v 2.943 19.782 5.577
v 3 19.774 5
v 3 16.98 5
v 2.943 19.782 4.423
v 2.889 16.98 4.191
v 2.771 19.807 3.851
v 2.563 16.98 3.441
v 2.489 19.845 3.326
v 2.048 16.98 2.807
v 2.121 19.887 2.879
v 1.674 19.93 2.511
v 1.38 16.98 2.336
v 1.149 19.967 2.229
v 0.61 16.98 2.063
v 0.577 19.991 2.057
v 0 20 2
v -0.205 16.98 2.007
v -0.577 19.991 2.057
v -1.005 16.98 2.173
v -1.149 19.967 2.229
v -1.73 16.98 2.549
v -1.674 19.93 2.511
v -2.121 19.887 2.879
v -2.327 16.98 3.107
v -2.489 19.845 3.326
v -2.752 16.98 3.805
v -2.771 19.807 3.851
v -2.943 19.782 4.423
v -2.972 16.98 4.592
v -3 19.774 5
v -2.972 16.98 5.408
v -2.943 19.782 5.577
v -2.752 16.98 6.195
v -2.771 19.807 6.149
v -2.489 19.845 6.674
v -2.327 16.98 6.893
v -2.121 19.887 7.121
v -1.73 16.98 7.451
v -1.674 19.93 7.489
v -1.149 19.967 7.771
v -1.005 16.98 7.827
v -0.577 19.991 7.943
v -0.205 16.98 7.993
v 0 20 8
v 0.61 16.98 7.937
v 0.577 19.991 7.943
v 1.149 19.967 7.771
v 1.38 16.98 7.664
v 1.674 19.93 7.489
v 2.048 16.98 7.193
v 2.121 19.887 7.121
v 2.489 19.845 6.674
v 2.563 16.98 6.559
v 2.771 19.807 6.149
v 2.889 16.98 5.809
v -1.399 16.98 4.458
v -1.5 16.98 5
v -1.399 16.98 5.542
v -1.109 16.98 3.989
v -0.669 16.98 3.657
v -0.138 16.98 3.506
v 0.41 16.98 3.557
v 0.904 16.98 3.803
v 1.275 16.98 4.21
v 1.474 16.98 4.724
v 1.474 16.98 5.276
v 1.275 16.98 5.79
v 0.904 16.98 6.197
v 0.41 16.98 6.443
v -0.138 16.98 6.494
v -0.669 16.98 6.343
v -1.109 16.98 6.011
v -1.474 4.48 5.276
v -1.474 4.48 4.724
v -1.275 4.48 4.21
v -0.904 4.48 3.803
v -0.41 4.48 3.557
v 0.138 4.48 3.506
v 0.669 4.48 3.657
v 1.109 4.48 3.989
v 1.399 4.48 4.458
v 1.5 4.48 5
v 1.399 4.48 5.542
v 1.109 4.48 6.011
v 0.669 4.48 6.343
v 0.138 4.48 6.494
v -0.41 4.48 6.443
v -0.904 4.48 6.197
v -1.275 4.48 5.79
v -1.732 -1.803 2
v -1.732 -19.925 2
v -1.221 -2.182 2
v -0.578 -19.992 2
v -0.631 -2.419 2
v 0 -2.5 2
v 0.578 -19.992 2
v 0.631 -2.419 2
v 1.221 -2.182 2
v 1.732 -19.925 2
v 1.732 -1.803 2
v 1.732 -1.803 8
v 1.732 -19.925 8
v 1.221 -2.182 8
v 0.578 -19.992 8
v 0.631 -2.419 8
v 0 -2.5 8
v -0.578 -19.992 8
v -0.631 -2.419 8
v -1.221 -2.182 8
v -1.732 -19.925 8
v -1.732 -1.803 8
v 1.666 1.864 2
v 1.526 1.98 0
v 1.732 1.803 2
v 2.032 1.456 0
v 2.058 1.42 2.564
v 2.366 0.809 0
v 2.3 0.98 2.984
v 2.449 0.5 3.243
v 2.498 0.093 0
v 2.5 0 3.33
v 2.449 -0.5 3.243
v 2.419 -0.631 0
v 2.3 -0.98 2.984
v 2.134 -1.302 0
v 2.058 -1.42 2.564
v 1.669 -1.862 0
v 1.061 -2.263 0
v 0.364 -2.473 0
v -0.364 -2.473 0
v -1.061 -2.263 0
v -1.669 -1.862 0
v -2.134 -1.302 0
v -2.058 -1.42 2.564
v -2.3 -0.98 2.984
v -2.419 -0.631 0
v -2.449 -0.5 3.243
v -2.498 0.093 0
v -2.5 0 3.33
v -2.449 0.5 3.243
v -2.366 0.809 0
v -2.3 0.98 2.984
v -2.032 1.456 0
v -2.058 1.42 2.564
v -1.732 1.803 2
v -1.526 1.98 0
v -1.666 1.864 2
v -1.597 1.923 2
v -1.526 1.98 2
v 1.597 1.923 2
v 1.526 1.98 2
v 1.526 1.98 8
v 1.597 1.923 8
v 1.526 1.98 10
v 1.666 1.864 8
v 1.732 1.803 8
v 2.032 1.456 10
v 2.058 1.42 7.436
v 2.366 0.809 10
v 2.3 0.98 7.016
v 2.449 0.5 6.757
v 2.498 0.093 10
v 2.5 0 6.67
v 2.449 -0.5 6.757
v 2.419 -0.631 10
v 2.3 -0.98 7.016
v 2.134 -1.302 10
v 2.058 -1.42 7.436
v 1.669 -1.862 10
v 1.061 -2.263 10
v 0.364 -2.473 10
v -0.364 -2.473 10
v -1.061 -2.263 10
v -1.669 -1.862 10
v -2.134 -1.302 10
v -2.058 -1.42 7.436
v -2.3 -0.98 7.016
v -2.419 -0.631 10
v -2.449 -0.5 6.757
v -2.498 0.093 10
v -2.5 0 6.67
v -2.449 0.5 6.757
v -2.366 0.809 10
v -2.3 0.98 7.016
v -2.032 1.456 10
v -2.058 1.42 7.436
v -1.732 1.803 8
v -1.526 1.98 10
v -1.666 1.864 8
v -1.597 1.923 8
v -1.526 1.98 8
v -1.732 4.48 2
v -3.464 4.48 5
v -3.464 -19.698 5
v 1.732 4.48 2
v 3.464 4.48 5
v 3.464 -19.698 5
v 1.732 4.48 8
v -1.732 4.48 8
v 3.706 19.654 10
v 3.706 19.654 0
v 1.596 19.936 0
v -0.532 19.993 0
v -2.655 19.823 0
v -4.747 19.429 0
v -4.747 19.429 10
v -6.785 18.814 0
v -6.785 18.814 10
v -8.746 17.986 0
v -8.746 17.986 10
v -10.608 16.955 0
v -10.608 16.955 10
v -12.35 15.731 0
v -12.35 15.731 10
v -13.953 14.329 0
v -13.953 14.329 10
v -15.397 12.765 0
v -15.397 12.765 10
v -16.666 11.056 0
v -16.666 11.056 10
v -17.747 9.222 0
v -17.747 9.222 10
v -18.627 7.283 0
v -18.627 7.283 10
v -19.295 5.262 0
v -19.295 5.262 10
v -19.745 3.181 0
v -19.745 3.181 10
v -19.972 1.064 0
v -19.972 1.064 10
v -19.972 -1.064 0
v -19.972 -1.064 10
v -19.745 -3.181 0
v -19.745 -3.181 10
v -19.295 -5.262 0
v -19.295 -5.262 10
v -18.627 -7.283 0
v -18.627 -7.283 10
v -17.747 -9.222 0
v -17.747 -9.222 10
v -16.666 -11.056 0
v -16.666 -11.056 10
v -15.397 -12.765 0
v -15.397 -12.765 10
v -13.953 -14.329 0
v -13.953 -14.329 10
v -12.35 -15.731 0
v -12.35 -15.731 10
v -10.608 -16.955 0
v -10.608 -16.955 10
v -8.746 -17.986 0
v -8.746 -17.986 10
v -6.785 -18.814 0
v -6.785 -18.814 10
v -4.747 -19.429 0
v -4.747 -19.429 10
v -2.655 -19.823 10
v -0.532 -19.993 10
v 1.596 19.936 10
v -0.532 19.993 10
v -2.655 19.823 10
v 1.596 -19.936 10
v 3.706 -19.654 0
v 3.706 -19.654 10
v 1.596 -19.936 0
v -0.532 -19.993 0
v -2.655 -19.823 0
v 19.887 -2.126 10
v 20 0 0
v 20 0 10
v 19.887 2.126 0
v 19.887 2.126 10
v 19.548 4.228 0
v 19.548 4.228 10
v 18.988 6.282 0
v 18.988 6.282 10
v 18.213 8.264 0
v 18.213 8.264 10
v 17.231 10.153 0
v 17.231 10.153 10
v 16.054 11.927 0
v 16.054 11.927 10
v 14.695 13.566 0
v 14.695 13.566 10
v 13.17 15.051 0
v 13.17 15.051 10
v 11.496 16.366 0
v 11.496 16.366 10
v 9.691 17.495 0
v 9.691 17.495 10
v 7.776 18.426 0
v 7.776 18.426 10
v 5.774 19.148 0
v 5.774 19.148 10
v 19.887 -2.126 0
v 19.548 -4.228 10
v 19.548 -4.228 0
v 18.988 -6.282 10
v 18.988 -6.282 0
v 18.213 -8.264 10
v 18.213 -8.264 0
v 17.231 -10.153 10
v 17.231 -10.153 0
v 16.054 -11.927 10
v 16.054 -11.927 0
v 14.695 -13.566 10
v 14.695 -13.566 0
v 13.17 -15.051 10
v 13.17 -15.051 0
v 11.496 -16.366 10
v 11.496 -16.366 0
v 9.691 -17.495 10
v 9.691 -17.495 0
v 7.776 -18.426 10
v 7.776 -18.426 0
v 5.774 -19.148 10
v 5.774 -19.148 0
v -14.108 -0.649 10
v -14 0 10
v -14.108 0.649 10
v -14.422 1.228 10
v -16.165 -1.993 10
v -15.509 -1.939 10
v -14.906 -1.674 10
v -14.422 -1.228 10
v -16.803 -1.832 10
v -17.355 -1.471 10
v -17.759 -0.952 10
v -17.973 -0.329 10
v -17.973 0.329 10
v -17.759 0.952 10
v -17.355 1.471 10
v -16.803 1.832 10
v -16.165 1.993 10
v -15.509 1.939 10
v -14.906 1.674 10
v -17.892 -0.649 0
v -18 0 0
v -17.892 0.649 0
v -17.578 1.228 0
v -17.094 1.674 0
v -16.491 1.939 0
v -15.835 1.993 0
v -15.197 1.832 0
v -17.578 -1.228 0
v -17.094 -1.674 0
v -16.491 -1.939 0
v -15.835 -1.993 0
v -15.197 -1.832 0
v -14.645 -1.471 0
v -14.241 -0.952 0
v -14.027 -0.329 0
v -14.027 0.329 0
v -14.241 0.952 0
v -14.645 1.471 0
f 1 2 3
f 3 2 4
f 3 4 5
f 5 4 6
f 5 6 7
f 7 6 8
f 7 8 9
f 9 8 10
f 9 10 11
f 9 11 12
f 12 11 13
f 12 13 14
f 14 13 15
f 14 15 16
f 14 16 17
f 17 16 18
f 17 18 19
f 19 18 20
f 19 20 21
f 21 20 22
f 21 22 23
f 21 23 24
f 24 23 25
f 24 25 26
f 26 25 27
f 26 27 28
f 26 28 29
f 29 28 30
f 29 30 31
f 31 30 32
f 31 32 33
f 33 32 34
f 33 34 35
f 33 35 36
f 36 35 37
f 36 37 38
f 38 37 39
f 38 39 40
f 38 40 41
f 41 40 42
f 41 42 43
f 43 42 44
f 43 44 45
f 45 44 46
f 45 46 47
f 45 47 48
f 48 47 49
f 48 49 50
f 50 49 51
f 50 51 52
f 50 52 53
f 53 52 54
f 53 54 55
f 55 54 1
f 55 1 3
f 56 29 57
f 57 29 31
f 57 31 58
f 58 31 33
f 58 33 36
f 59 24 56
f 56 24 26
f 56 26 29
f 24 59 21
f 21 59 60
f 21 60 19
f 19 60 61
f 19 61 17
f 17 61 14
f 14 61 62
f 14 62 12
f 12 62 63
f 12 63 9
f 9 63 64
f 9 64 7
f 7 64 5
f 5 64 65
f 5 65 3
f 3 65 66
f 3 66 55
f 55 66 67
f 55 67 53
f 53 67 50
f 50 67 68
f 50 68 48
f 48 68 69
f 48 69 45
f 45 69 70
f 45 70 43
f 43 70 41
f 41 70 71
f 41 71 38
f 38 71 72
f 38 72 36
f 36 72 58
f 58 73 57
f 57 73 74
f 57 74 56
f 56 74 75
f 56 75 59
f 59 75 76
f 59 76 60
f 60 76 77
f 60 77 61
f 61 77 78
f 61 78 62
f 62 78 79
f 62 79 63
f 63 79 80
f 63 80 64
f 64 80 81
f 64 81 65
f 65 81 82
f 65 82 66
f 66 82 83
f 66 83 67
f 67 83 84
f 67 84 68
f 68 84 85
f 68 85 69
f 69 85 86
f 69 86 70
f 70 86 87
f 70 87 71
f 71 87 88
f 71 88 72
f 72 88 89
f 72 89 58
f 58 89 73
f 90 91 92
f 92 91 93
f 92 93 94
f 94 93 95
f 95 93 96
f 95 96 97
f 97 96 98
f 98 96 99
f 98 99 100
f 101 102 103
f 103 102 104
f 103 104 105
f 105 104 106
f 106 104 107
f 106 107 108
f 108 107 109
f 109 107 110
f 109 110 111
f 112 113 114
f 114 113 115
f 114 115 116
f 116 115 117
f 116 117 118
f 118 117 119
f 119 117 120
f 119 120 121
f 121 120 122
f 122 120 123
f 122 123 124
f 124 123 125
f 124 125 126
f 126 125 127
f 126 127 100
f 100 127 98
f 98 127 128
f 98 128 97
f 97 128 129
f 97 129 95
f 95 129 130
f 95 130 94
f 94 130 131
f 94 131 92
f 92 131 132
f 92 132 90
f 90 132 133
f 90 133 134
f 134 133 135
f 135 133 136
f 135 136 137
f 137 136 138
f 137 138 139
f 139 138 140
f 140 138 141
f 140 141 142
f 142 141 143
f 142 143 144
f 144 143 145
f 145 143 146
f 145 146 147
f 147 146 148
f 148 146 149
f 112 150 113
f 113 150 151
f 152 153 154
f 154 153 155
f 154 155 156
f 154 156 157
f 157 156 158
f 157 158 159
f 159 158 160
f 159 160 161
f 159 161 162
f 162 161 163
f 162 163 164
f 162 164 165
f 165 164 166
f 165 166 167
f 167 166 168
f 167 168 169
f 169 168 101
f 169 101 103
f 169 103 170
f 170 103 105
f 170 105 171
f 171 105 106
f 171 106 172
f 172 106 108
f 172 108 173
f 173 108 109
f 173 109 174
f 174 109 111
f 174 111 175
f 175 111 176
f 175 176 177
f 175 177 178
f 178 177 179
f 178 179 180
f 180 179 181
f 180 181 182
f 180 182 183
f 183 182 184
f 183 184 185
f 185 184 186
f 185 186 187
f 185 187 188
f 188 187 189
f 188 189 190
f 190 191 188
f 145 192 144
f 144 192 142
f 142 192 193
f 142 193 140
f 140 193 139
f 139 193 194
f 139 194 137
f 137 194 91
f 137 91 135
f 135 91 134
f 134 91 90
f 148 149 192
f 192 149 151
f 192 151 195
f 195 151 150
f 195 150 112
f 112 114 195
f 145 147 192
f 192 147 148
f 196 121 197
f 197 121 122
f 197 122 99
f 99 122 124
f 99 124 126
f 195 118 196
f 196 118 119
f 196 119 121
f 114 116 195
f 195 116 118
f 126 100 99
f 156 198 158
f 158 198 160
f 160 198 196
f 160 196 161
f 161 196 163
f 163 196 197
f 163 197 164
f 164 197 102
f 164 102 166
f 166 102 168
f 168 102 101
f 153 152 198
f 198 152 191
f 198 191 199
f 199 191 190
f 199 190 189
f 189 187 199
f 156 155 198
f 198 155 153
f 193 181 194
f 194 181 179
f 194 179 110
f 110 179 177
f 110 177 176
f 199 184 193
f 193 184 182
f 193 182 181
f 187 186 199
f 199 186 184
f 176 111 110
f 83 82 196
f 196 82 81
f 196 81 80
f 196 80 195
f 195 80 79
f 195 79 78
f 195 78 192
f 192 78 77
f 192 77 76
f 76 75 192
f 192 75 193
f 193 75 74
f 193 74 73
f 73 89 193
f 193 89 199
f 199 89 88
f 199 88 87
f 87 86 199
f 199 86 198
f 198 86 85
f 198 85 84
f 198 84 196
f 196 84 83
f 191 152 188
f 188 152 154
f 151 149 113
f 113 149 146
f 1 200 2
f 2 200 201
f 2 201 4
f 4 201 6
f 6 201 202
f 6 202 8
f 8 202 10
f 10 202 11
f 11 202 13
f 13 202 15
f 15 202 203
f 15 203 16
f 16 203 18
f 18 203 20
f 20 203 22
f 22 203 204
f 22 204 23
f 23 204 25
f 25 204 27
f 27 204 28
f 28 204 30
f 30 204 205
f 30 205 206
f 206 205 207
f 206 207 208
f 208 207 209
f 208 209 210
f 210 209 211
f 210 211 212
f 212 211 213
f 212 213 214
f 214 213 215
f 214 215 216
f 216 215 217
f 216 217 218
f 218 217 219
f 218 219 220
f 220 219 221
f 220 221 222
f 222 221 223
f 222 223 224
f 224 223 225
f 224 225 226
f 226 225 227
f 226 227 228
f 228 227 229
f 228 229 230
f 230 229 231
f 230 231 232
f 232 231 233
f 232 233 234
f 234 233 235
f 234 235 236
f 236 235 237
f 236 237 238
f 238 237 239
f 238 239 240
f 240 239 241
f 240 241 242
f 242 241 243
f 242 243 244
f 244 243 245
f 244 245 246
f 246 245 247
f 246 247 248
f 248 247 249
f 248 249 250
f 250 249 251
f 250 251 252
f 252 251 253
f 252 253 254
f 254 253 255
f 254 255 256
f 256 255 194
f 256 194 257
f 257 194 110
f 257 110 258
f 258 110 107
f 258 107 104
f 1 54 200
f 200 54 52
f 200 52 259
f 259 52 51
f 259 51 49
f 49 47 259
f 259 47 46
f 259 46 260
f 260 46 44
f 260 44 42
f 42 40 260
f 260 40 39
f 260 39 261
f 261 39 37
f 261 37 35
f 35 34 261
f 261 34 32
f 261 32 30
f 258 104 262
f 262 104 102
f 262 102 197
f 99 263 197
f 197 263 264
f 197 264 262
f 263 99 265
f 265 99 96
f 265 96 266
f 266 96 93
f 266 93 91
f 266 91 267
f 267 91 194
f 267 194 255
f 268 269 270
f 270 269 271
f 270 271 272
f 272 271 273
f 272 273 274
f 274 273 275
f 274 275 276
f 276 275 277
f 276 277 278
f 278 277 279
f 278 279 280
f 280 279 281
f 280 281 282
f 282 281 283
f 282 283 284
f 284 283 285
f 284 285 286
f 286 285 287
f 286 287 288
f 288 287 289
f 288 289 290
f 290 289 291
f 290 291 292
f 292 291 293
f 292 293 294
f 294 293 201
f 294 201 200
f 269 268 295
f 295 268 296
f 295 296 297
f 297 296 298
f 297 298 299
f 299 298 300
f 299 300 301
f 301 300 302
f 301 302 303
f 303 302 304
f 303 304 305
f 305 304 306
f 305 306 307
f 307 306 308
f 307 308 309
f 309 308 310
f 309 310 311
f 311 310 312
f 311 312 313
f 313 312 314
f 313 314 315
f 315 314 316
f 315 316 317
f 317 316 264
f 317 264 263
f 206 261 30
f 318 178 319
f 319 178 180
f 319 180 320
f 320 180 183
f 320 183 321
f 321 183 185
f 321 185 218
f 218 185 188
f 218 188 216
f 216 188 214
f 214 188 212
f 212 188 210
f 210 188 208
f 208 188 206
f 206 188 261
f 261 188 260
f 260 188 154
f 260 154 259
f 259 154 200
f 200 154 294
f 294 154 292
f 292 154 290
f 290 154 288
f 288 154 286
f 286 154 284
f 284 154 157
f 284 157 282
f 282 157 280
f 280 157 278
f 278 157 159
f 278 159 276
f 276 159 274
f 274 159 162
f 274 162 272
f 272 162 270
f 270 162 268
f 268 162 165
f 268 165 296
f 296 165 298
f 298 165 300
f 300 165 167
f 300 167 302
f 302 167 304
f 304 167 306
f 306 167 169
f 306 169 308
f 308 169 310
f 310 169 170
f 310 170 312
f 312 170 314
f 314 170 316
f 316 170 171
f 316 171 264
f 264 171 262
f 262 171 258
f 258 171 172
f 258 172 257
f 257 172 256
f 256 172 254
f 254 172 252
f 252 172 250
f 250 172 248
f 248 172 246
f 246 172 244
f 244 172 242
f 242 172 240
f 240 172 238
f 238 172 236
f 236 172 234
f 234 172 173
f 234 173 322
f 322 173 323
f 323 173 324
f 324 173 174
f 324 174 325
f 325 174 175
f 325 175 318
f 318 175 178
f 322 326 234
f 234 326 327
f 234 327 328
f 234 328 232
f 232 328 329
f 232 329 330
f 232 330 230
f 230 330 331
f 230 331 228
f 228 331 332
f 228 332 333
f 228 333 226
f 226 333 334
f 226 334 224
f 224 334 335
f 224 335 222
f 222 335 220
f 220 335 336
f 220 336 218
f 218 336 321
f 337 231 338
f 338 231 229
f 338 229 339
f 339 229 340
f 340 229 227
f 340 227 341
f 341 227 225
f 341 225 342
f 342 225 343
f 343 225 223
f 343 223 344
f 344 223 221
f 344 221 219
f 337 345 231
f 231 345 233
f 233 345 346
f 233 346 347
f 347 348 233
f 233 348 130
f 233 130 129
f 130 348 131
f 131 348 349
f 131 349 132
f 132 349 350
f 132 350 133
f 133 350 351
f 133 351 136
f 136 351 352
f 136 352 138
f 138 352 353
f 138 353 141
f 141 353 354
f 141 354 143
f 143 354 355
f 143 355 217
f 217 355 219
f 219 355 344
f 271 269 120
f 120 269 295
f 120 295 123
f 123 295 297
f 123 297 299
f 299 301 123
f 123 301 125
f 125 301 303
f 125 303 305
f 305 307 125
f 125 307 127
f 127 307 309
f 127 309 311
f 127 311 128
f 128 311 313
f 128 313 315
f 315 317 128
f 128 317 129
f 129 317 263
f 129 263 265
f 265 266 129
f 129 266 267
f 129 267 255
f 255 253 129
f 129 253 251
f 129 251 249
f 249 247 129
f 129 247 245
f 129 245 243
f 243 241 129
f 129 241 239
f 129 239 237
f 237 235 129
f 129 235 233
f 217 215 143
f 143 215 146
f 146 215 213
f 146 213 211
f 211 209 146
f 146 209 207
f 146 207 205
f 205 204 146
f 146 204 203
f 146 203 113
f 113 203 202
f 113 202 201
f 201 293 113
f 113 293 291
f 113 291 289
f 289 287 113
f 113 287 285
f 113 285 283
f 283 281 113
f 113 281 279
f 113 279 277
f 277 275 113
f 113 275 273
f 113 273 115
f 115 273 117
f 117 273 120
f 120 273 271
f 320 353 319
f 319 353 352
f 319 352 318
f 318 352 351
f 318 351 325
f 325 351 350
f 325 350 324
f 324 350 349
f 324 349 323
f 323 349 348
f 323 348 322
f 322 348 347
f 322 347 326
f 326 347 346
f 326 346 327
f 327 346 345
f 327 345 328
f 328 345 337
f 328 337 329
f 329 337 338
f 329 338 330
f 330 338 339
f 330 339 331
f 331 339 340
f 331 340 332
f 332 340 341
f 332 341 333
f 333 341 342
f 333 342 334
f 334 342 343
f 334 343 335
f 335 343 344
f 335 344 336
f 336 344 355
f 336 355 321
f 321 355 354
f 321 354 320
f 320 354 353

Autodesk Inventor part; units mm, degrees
ref_plane "YZ Plane" through (0, 0, 0) normal (1, 0, 0) x (0, 1, 0)
ref_plane "XZ Plane" through (0, 0, 0) normal (0, 1, 0) x (-1, 0, 0)
ref_plane "XY Plane" through (0, 0, 0) normal (0, 0, 1) x (1, 0, 0)
sketch "草圖1" plane through (0, 0, 0) normal (0, 0, 1) x (1, 0, 0)
  arc A0 (-1.5263, 1.98) -> (1.5263, 1.98) centre (0, 0) ccw
  line L0 (1.5263, 1.98) -> (-1.5263, 1.98)
  circle A1 centre (0, 0) radius 20
  point P0 (0, -2.5)
  dimension "d0" = 5
  dimension "d2" = 4.48
  dimension "d3" = 40
extrude "擠出1" add sketch "草圖1" along normal blind 10
sketch "草圖2" plane through (-1.5263, 1.98, 0) normal (0, -1, 0) x (1, 0, 0)
  line L0 (3.2584, 8) -> (4.9904, 5)
  line L1 (4.9904, 5) -> (3.2584, 2)
  line L2 (3.2584, 2) -> (-0.2057, 2)
  line L3 (-0.2057, 2) -> (-1.9378, 5)
  line L4 (-1.9378, 5) -> (-0.2057, 8)
  line L5 (-0.2057, 8) -> (3.2584, 8)
  point P0 (1.5263, 0)
  point P1 (1.5263, 5)
  point P2 (1.5263, 8)
extrude "擠出2" cut sketch "草圖2" against normal blind 2.5
extrude "擠出3" cut sketch "草圖2" along normal through all
sketch "草圖4" plane through (-1.5263, 4.48, 0) normal (0, -1, 0) x (1, 0, 0)
  circle A0 centre (1.5263, 5) radius 1.5
  circle A1 centre (1.5263, 5) radius 3
  point P0 (1.5263, 0)
  dimension "d11" = 3
  dimension "d12" = 6
extrude "擠出4" cut sketch "草圖4" against normal through all contours A0
ref_plane "工作平面1" through (-1.5263, 21.98, 0) normal (0, -1, 0) x (1, 0, 0)
sketch "草圖5" plane through (-1.5263, 21.98, 0) normal (0, -1, 0) x (1, 0, 0)
  circle A0 centre (1.5263, 5) radius 1.5 projected
  circle A1 centre (1.5263, 5) radius 3
  point P0 (1.5263, 0)
  dimension "d16" = 6
extrude "擠出5" cut sketch "草圖5" along normal blind 5 contours A0 | A1
sketch "草圖6" plane through (0, 0, 0) normal (0, 0, -1) x (-1, 0, 0)
  circle A0 centre (16, 0) radius 2
  point P0 (0, 0)
  dimension "d19" = 4
  dimension "d20" = 16
extrude "擠出6" cut sketch "草圖6" against normal through all
properties part number "crank"
